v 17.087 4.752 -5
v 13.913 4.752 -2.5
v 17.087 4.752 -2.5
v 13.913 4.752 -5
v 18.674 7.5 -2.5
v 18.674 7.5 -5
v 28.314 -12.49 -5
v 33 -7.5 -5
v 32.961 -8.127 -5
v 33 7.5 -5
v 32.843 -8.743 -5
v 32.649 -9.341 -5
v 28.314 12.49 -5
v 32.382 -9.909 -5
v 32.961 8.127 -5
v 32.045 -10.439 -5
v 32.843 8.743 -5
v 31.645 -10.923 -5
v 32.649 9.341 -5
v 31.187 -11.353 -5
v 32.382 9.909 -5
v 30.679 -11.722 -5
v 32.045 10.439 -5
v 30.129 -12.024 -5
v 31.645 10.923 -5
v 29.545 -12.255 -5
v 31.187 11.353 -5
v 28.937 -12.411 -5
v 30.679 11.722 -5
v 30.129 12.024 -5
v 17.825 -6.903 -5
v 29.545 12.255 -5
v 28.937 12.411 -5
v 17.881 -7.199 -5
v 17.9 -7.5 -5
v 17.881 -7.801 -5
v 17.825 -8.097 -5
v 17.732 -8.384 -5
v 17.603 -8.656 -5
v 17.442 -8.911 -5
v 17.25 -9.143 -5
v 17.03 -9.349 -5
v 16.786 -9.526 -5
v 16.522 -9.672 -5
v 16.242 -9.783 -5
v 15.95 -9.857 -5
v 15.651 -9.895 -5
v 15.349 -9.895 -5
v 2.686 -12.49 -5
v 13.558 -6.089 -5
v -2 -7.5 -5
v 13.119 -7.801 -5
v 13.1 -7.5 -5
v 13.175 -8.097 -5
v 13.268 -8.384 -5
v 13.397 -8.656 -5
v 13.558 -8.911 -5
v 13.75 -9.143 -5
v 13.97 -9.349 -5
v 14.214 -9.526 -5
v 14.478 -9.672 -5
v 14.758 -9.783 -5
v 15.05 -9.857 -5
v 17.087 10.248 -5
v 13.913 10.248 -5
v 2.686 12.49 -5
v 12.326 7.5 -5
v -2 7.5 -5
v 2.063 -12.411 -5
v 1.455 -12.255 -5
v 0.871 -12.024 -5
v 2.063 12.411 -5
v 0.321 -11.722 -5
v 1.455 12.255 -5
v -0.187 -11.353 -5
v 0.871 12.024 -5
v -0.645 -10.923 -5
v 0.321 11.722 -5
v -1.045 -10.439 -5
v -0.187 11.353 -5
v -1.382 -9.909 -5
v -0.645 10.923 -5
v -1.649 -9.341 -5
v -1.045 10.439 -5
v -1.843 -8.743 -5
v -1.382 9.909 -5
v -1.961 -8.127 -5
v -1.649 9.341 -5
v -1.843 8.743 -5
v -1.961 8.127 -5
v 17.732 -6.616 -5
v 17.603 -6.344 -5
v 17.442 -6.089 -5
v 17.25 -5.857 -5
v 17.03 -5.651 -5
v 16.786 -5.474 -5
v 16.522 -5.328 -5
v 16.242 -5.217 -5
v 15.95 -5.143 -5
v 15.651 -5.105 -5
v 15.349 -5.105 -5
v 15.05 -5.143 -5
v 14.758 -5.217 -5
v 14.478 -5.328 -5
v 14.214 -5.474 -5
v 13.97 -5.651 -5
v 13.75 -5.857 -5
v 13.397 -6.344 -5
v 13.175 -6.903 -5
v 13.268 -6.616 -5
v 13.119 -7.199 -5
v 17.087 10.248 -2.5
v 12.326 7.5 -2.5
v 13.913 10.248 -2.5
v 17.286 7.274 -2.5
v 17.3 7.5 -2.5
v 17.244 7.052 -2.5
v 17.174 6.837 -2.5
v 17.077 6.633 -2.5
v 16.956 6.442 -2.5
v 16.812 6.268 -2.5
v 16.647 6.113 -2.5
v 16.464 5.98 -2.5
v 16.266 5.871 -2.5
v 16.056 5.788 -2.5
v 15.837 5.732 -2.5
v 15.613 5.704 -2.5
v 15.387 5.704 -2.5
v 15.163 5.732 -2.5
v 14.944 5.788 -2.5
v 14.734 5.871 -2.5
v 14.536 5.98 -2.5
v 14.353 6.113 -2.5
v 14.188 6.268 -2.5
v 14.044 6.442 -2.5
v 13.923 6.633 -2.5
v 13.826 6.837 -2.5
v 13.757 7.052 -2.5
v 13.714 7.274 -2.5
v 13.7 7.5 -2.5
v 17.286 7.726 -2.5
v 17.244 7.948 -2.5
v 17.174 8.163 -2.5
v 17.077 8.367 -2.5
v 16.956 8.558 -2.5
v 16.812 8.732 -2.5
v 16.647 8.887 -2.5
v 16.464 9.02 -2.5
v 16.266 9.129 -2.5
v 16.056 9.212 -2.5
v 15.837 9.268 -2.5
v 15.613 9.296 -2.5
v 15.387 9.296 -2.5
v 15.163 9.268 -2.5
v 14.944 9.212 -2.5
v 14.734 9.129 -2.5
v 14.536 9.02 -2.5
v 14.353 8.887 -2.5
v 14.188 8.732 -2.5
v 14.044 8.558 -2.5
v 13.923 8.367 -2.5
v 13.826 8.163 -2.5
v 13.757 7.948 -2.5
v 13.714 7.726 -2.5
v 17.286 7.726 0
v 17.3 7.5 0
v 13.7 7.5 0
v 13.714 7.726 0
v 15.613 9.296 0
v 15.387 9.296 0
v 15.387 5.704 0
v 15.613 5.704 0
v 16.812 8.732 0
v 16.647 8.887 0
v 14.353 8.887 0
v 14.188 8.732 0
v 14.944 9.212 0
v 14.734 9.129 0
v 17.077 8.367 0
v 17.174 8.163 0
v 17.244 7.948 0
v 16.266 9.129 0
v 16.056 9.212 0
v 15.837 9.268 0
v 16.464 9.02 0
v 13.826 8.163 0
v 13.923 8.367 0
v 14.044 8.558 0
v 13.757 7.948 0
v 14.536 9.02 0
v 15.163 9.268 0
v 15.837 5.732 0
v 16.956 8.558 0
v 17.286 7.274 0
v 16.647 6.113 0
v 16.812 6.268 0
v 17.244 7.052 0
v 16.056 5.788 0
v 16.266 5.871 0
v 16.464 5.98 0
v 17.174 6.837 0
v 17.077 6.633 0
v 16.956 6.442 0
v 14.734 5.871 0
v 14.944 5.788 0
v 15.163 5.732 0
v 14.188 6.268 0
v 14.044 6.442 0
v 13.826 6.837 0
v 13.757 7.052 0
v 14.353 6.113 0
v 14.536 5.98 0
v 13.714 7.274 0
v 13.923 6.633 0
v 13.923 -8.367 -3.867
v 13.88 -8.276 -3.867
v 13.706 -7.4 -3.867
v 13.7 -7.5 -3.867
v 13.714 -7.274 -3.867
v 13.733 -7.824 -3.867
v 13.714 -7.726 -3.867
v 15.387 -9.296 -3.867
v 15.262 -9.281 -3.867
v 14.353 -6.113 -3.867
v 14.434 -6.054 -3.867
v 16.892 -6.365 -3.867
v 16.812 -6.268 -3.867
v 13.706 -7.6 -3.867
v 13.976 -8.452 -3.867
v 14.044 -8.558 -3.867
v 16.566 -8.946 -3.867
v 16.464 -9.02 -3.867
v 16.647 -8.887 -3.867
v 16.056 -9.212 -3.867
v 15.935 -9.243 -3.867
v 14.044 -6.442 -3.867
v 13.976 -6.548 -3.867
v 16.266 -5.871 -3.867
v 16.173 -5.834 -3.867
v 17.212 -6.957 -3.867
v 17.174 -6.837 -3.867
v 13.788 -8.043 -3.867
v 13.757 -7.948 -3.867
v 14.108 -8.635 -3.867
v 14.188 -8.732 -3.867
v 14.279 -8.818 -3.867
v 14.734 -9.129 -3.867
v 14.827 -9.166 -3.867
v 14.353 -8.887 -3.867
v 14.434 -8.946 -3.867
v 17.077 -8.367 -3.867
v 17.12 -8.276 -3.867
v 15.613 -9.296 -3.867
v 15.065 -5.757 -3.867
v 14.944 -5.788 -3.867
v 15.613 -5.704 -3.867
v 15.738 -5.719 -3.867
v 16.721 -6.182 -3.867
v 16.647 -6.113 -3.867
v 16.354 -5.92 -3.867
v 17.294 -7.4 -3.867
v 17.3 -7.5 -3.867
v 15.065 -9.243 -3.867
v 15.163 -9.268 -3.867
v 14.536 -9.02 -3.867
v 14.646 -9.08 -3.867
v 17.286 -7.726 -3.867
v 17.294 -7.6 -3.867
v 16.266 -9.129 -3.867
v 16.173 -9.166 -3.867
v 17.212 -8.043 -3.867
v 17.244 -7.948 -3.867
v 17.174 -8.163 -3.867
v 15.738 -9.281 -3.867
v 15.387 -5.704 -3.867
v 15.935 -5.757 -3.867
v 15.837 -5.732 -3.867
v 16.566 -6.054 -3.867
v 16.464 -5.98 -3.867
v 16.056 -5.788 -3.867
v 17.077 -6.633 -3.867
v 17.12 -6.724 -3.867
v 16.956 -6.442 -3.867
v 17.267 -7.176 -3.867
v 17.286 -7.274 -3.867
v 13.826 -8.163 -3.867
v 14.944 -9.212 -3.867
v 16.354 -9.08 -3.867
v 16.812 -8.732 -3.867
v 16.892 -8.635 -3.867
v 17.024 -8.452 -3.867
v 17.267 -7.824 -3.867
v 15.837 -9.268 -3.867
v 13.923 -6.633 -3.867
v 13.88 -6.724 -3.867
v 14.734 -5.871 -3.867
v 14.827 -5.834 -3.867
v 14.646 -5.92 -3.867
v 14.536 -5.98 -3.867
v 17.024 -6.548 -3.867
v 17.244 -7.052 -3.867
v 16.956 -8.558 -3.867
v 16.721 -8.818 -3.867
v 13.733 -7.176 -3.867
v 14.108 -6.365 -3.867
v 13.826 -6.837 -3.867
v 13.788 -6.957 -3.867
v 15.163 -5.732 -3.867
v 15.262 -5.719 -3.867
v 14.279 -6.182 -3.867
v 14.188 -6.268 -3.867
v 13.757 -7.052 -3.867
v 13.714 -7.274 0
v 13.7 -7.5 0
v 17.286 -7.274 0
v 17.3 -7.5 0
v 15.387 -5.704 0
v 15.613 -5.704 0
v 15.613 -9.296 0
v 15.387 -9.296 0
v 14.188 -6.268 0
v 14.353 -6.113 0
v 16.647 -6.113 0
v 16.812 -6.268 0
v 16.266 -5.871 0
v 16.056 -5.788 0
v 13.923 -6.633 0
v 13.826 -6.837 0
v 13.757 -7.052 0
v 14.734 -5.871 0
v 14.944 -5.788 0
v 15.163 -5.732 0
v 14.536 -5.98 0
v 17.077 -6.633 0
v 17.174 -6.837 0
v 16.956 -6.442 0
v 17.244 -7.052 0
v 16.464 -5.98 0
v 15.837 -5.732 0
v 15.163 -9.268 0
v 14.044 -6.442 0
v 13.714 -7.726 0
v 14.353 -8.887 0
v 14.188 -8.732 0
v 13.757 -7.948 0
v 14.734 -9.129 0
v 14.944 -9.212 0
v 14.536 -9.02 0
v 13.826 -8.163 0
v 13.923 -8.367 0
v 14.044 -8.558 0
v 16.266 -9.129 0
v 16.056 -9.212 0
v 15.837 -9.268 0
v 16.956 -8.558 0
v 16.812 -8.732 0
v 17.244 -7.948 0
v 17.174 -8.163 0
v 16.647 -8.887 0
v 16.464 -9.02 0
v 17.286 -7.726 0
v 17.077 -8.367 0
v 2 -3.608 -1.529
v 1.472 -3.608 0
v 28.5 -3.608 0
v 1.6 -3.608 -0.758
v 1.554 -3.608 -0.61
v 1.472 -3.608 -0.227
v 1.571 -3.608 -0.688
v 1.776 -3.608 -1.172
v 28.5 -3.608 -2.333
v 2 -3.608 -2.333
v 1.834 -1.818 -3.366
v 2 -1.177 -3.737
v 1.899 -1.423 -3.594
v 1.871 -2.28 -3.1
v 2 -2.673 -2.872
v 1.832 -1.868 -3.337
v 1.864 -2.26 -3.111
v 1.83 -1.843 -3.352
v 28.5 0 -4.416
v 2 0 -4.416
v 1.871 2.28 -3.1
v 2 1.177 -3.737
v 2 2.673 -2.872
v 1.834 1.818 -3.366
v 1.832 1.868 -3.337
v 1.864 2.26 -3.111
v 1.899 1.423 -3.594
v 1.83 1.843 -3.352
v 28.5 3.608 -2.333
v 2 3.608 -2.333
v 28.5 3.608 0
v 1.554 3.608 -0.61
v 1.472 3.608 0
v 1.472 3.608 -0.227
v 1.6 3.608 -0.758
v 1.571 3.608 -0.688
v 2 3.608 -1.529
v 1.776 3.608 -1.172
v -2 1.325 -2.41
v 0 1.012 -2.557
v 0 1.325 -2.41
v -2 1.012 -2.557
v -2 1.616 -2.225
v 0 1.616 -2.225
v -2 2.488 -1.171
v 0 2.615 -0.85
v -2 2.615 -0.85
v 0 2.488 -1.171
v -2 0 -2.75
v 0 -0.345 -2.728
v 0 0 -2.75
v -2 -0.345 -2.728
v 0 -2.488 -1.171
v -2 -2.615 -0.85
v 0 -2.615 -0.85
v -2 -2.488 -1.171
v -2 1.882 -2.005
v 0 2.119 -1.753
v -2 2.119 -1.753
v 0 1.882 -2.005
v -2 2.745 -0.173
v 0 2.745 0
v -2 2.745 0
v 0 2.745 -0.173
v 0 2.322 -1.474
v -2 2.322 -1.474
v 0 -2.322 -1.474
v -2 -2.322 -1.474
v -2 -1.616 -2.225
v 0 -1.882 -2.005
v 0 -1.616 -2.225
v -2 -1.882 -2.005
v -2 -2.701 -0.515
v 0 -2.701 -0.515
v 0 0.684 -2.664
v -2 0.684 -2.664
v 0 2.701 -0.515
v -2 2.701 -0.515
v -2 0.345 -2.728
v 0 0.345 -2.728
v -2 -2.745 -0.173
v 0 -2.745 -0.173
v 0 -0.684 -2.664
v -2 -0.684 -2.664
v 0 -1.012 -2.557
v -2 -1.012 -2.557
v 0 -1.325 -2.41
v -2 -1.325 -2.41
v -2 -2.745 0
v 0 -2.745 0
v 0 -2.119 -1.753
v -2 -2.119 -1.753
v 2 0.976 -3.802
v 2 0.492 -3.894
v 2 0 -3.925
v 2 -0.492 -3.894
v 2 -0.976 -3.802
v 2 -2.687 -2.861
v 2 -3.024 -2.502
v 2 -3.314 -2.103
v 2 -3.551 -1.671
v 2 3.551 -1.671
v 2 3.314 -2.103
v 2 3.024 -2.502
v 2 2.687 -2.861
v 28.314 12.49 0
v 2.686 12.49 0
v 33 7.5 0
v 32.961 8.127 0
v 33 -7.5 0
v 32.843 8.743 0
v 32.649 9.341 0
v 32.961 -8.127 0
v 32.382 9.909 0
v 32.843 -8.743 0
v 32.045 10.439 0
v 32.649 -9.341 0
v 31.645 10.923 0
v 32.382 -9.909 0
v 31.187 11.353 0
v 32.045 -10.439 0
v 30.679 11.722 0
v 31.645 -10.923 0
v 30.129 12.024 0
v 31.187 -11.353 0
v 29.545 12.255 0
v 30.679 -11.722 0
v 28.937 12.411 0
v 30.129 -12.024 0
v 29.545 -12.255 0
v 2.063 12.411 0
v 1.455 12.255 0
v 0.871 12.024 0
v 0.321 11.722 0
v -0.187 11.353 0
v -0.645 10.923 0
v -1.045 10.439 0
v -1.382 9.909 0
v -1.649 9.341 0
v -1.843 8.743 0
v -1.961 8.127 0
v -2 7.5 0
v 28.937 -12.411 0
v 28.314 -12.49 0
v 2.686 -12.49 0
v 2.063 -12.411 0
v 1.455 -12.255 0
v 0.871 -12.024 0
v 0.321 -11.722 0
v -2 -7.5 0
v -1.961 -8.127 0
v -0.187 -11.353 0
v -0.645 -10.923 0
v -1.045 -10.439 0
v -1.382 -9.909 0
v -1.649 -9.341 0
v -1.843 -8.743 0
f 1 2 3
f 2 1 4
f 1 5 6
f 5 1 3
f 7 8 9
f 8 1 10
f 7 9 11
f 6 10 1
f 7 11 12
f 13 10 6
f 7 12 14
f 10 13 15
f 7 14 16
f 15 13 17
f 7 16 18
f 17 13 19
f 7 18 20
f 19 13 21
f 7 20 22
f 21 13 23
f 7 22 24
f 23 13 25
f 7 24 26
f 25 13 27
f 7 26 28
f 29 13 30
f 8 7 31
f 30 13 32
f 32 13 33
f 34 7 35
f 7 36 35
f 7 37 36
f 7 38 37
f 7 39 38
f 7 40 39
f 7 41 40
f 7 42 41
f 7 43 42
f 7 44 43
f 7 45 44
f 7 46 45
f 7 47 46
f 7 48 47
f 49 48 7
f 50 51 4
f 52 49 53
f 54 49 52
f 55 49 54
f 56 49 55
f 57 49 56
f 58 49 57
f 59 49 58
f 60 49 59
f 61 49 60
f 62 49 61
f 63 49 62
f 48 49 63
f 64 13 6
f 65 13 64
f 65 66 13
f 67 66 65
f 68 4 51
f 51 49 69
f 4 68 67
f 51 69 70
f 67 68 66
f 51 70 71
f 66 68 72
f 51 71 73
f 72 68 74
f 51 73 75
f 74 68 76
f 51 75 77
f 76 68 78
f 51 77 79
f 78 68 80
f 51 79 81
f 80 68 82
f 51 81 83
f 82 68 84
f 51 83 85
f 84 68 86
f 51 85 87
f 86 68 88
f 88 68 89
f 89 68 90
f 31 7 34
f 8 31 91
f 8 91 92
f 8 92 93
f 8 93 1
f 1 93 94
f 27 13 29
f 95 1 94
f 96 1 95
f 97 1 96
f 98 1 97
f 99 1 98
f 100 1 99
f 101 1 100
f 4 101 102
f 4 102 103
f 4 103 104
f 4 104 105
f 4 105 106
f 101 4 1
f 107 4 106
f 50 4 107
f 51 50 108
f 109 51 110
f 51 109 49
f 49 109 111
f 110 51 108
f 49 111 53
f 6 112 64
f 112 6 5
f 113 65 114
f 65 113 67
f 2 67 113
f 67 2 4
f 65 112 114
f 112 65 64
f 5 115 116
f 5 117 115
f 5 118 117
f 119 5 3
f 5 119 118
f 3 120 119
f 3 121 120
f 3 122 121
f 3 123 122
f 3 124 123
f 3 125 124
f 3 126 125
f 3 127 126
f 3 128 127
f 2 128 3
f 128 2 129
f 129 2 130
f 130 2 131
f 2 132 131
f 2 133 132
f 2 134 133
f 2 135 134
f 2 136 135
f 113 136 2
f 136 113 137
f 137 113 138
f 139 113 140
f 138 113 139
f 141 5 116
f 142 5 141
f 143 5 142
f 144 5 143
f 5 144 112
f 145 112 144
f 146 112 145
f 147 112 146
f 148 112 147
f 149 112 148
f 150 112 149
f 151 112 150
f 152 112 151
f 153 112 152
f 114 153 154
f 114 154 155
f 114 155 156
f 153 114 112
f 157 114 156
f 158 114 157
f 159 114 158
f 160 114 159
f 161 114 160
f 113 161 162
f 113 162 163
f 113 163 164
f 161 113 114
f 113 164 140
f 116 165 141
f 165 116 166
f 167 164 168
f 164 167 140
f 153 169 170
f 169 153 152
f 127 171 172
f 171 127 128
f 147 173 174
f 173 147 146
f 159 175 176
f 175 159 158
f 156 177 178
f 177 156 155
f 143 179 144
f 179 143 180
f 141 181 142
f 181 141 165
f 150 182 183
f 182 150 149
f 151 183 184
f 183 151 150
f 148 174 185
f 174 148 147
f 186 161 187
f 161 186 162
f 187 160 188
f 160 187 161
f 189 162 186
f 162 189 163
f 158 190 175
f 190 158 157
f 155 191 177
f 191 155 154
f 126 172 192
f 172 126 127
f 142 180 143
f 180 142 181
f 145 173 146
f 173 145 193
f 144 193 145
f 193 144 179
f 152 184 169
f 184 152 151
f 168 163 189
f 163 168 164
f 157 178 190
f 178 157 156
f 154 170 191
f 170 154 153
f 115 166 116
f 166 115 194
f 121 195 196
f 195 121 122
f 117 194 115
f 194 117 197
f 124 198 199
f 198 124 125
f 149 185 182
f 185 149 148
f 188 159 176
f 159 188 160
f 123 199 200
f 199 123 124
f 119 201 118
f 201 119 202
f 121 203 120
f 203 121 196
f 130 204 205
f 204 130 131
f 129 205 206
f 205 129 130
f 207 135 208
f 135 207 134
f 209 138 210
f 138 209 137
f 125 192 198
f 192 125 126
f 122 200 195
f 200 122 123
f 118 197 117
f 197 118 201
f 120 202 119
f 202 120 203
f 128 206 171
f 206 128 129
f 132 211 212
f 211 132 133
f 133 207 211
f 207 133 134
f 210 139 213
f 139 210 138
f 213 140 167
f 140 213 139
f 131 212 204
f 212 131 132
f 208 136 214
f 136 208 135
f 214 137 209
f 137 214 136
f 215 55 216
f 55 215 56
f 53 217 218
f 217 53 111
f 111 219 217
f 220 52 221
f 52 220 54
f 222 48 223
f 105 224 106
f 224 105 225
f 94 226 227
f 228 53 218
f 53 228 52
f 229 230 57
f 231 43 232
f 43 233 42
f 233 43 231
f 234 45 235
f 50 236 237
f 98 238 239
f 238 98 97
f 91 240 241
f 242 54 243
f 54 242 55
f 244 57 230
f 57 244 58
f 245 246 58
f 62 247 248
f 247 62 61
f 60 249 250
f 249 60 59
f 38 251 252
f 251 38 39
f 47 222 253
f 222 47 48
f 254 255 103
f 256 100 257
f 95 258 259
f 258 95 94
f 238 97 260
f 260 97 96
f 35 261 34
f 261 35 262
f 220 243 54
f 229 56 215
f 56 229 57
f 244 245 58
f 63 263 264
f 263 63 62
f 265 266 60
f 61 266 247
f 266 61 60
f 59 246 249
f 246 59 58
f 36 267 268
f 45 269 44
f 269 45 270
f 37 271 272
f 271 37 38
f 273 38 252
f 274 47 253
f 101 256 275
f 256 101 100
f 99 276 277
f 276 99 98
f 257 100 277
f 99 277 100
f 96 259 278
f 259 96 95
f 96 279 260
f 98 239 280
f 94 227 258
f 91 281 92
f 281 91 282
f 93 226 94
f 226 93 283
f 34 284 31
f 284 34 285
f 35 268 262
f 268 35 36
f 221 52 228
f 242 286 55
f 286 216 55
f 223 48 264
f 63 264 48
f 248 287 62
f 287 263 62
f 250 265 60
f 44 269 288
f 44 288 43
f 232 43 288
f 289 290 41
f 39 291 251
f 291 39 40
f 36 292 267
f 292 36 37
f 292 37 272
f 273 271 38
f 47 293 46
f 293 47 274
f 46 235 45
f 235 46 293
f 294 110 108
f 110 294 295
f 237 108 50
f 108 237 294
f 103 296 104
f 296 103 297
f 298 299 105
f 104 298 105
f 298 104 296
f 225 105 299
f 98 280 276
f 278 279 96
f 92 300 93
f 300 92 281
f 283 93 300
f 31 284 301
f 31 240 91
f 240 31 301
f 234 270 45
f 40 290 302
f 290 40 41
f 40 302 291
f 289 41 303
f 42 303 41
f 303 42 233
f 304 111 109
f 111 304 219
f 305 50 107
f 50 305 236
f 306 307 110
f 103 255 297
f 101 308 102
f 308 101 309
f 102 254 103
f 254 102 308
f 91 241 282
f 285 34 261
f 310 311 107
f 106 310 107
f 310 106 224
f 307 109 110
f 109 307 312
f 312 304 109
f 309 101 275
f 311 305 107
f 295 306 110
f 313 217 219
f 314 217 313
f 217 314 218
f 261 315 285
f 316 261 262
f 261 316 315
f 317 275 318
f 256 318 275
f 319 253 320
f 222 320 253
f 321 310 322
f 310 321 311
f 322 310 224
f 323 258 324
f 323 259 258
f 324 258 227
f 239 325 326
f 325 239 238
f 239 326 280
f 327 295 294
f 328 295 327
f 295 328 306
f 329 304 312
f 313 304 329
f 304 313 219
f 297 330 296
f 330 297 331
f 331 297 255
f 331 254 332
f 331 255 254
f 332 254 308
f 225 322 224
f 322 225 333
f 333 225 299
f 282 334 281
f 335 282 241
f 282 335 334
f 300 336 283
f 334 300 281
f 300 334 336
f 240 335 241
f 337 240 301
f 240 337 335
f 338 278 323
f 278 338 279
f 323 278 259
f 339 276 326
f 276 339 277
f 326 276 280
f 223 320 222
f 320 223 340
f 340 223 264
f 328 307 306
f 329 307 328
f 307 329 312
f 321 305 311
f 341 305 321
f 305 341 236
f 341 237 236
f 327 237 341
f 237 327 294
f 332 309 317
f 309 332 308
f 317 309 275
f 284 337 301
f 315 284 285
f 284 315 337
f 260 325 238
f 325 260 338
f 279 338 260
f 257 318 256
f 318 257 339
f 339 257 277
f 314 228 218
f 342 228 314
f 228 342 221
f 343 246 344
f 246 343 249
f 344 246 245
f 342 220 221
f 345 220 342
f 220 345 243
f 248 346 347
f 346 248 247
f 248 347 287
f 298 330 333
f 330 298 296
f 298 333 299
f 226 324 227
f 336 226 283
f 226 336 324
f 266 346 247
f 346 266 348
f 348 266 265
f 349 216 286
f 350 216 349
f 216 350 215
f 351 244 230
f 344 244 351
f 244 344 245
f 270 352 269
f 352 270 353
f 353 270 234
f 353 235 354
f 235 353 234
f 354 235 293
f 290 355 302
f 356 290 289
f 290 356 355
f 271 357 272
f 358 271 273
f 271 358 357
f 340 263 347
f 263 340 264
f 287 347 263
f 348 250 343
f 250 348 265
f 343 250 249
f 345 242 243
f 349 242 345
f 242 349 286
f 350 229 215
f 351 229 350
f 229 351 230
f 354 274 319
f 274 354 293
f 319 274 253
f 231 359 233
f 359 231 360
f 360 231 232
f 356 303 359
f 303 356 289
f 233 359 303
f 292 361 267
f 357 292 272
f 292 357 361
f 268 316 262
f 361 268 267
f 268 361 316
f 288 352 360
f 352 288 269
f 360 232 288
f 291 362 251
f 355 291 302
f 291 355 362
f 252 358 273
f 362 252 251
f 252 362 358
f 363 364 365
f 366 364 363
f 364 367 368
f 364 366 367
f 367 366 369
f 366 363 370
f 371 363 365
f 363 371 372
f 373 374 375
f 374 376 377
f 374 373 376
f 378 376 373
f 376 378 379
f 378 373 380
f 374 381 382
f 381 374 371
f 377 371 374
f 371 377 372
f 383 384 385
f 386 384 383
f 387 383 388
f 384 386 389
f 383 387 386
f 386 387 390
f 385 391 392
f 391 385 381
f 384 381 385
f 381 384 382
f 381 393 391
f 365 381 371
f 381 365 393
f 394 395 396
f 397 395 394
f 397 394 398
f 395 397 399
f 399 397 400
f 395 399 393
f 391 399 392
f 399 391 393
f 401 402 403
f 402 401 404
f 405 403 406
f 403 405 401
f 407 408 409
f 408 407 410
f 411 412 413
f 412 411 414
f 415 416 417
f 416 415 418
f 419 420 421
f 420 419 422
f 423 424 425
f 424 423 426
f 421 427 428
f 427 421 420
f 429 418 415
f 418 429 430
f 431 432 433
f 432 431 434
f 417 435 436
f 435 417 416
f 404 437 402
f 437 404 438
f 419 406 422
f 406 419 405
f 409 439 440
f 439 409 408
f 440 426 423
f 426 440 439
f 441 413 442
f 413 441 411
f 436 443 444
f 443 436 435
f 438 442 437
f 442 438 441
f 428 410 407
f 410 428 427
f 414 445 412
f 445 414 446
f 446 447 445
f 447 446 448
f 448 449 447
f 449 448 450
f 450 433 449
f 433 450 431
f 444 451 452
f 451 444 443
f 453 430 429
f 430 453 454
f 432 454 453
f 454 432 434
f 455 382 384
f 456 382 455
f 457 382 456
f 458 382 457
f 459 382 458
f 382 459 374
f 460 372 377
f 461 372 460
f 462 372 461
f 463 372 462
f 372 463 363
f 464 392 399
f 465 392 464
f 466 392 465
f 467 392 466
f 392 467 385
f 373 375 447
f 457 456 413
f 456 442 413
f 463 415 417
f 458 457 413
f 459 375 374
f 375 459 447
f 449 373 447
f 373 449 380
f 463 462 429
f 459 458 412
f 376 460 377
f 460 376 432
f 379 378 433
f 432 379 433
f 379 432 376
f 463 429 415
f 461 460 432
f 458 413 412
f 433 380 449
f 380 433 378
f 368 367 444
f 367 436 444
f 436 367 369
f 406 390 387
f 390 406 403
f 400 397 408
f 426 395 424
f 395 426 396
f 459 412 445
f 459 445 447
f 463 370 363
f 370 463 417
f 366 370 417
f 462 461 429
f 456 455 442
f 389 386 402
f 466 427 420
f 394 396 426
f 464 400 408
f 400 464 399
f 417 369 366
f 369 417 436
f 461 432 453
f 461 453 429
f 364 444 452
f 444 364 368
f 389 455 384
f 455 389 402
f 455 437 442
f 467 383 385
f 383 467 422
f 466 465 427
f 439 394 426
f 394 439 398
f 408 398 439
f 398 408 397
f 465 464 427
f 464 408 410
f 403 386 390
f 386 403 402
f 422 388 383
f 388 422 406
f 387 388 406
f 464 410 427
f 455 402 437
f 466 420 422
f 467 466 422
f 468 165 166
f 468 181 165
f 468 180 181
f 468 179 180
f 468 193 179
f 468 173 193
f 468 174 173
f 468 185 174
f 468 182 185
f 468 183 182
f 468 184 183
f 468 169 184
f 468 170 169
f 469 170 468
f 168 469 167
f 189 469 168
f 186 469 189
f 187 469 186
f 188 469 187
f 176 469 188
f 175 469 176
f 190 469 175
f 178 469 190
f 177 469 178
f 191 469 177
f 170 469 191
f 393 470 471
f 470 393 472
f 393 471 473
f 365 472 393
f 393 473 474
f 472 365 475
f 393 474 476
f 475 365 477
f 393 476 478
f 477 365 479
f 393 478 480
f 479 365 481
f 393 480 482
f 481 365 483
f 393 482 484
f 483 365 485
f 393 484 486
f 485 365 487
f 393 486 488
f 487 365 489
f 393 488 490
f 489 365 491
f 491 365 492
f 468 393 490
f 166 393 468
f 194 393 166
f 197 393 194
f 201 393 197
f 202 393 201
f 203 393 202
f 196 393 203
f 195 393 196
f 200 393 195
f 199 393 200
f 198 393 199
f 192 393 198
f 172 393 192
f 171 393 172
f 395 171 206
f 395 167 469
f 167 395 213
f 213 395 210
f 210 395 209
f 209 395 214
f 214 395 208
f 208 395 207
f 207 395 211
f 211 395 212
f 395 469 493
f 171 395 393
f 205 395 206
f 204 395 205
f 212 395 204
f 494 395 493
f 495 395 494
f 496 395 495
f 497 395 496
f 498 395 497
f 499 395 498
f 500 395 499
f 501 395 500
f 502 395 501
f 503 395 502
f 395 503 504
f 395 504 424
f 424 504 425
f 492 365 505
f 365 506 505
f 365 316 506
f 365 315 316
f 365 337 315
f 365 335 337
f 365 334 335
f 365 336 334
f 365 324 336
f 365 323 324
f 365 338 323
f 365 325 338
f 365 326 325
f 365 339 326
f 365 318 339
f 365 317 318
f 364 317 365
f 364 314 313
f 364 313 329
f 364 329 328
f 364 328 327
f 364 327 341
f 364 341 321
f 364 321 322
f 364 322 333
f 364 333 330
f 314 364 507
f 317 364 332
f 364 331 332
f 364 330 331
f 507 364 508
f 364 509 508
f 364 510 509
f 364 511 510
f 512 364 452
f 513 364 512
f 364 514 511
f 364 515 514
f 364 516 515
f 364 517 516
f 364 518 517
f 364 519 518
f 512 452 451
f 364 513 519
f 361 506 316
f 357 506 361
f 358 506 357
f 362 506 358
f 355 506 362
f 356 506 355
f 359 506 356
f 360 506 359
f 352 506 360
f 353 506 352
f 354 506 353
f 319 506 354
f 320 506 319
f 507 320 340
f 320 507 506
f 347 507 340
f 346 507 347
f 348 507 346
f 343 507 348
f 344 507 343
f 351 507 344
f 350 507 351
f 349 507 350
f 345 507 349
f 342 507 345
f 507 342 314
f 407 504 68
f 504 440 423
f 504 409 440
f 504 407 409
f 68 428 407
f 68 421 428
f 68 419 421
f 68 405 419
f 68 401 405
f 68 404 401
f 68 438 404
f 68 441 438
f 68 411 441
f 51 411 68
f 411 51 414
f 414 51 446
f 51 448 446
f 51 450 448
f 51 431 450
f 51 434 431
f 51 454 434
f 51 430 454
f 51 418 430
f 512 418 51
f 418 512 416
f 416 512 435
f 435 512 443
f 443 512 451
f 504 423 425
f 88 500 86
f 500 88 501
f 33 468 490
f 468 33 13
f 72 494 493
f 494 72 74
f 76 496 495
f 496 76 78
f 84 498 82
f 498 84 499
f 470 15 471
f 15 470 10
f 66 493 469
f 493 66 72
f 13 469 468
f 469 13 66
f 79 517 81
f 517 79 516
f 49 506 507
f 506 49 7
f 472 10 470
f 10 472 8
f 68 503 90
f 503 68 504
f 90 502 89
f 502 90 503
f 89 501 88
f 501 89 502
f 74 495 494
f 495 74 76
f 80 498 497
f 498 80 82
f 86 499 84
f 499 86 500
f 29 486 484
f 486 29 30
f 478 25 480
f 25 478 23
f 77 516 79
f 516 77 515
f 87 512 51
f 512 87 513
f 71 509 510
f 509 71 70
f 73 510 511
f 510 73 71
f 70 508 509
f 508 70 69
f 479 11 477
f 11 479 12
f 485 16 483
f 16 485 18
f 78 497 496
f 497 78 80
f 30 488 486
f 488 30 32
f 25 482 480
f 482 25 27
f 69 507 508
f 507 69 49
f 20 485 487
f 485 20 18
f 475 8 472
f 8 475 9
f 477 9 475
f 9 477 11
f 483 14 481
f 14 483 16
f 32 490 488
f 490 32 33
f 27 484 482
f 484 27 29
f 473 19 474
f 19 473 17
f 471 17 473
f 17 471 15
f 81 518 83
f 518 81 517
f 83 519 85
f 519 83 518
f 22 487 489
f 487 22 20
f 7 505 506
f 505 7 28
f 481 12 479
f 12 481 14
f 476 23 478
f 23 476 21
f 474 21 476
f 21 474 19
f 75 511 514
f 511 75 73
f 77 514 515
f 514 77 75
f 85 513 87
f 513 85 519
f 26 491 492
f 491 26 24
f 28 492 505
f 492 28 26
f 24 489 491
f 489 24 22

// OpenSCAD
$fn = 50;


difference() {
	union() {
		translate(v = [15.5000000000, 0, -5.0000000000]) {
			hull() {
				translate(v = [-12.5000000000, 7.5000000000, 0]) {
					cylinder(h = 10, r = 5);
				}
				translate(v = [12.5000000000, 7.5000000000, 0]) {
					cylinder(h = 10, r = 5);
				}
				translate(v = [-12.5000000000, -7.5000000000, 0]) {
					cylinder(h = 10, r = 5);
				}
				translate(v = [12.5000000000, -7.5000000000, 0]) {
					cylinder(h = 10, r = 5);
				}
			}
		}
	}
	union() {
		translate(v = [15.5000000000, 7.5000000000, 5.0000000000]) {
			rotate(a = [0, 0, 0]) {
				difference() {
					union() {
						translate(v = [0, 0, -10.0000000000]) {
							rotate(a = [0, 0, 0]) {
								difference() {
									union() {
										#linear_extrude(height = 2.5000000000) {
											polygon(points = [[3.1735000000, 0.0000000000], [1.5867500000, 2.7483316189], [-1.5867500000, 2.7483316189], [-3.1735000000, 0.0000000000], [-1.5867500000, -2.7483316189], [1.5867500000, -2.7483316189]]);
										}
									}
									union();
								}
							}
						}
						translate(v = [0, 0, -10.0000000000]) {
							rotate(a = [0, 0, 0]) {
								difference() {
									union() {
										#linear_extrude(height = 2.5000000000) {
											polygon(points = [[3.1735000000, 0.0000000000], [1.5867500000, 2.7483316189], [-1.5867500000, 2.7483316189], [-3.1735000000, 0.0000000000], [-1.5867500000, -2.7483316189], [1.5867500000, -2.7483316189]]);
										}
									}
									union();
								}
							}
						}
						translate(v = [0, 0, -10.0000000000]) {
							rotate(a = [0, 0, 0]) {
								difference() {
									union() {
										#linear_extrude(height = 2.5000000000) {
											polygon(points = [[3.1735000000, 0.0000000000], [1.5867500000, 2.7483316189], [-1.5867500000, 2.7483316189], [-3.1735000000, 0.0000000000], [-1.5867500000, -2.7483316189], [1.5867500000, -2.7483316189]]);
										}
									}
									union();
								}
							}
						}
						#translate(v = [0, 0, -1.7000000000]) {
							cylinder(h = 1.7000000000, r1 = 1.5000000000, r2 = 2.4000000000);
						}
						#translate(v = [0, 0, -10.0000000000]) {
							cylinder(h = 10, r = 1.5000000000);
						}
						#translate(v = [0, 0, -10.0000000000]) {
							cylinder(h = 10, r = 1.8000000000);
						}
						#translate(v = [0, 0, -10.0000000000]) {
							cylinder(h = 10, r = 1.5000000000);
						}
					}
					union();
				}
			}
		}
		translate(v = [15.5000000000, -7.5000000000, -5.0000000000]) {
			rotate(a = [0, 180, 0]) {
				difference() {
					union() {
						translate(v = [0, 0, -10.0000000000]) {
							rotate(a = [0, 0, 0]) {
								difference() {
									union() {
										#linear_extrude(height = 2.5000000000) {
											polygon(points = [[3.1735000000, 0.0000000000], [1.5867500000, 2.7483316189], [-1.5867500000, 2.7483316189], [-3.1735000000, 0.0000000000], [-1.5867500000, -2.7483316189], [1.5867500000, -2.7483316189]]);
										}
									}
									union();
								}
							}
						}
						translate(v = [0, 0, -10.0000000000]) {
							rotate(a = [0, 0, 0]) {
								difference() {
									union() {
										#linear_extrude(height = 2.5000000000) {
											polygon(points = [[3.1735000000, 0.0000000000], [1.5867500000, 2.7483316189], [-1.5867500000, 2.7483316189], [-3.1735000000, 0.0000000000], [-1.5867500000, -2.7483316189], [1.5867500000, -2.7483316189]]);
										}
									}
									union();
								}
							}
						}
						translate(v = [0, 0, -10.0000000000]) {
							rotate(a = [0, 0, 0]) {
								difference() {
									union() {
										#linear_extrude(height = 2.5000000000) {
											polygon(points = [[3.1735000000, 0.0000000000], [1.5867500000, 2.7483316189], [-1.5867500000, 2.7483316189], [-3.1735000000, 0.0000000000], [-1.5867500000, -2.7483316189], [1.5867500000, -2.7483316189]]);
										}
									}
									union();
								}
							}
						}
						#translate(v = [0, 0, -1.7000000000]) {
							cylinder(h = 1.7000000000, r1 = 1.5000000000, r2 = 2.4000000000);
						}
						#translate(v = [0, 0, -10.0000000000]) {
							cylinder(h = 10, r = 1.5000000000);
						}
						#translate(v = [0, 0, -10.0000000000]) {
							cylinder(h = 10, r = 1.8000000000);
						}
						#translate(v = [0, 0, -10.0000000000]) {
							cylinder(h = 10, r = 1.5000000000);
						}
					}
					union();
				}
			}
		}
		translate(v = [0, 0, 0]) {
			rotate(a = [0, 90, 0]) {
				difference() {
					union() {
						translate(v = [0.2500000000, 0, 0]) {
							#linear_extrude(height = 28.5000000000) {
								polygon(points = [[4.1658550000, 0.0000000000], [2.0829275000, 3.6077362585], [-2.0829275000, 3.6077362585], [-4.1658550000, 0.0000000000], [-2.0829275000, -3.6077362585], [2.0829275000, -3.6077362585]]);
							}
						}
						#translate(v = [0, 0, -72.0000000000]) {
							cylinder(h = 100, r = 2.7500000000);
						}
					}
					union() {
						difference() {
							#cylinder(h = 2, r1 = 10.7500000000, r2 = 11.9250000000);
							#cylinder(h = 2, r1 = 2.7500000000, r2 = 3.9250000000);
						}
					}
				}
			}
		}
		translate(v = [-250.0000000000, -250.0000000000, 0]) {
			cube(size = [500, 500, 500]);
		}
		translate(v = [-250.0000000000, -250.0000000000, 0]) {
			cube(size = [500, 500, 500]);
		}
		translate(v = [-250.0000000000, -250.0000000000, 0]) {
			cube(size = [500, 500, 500]);
		}
	}
}
